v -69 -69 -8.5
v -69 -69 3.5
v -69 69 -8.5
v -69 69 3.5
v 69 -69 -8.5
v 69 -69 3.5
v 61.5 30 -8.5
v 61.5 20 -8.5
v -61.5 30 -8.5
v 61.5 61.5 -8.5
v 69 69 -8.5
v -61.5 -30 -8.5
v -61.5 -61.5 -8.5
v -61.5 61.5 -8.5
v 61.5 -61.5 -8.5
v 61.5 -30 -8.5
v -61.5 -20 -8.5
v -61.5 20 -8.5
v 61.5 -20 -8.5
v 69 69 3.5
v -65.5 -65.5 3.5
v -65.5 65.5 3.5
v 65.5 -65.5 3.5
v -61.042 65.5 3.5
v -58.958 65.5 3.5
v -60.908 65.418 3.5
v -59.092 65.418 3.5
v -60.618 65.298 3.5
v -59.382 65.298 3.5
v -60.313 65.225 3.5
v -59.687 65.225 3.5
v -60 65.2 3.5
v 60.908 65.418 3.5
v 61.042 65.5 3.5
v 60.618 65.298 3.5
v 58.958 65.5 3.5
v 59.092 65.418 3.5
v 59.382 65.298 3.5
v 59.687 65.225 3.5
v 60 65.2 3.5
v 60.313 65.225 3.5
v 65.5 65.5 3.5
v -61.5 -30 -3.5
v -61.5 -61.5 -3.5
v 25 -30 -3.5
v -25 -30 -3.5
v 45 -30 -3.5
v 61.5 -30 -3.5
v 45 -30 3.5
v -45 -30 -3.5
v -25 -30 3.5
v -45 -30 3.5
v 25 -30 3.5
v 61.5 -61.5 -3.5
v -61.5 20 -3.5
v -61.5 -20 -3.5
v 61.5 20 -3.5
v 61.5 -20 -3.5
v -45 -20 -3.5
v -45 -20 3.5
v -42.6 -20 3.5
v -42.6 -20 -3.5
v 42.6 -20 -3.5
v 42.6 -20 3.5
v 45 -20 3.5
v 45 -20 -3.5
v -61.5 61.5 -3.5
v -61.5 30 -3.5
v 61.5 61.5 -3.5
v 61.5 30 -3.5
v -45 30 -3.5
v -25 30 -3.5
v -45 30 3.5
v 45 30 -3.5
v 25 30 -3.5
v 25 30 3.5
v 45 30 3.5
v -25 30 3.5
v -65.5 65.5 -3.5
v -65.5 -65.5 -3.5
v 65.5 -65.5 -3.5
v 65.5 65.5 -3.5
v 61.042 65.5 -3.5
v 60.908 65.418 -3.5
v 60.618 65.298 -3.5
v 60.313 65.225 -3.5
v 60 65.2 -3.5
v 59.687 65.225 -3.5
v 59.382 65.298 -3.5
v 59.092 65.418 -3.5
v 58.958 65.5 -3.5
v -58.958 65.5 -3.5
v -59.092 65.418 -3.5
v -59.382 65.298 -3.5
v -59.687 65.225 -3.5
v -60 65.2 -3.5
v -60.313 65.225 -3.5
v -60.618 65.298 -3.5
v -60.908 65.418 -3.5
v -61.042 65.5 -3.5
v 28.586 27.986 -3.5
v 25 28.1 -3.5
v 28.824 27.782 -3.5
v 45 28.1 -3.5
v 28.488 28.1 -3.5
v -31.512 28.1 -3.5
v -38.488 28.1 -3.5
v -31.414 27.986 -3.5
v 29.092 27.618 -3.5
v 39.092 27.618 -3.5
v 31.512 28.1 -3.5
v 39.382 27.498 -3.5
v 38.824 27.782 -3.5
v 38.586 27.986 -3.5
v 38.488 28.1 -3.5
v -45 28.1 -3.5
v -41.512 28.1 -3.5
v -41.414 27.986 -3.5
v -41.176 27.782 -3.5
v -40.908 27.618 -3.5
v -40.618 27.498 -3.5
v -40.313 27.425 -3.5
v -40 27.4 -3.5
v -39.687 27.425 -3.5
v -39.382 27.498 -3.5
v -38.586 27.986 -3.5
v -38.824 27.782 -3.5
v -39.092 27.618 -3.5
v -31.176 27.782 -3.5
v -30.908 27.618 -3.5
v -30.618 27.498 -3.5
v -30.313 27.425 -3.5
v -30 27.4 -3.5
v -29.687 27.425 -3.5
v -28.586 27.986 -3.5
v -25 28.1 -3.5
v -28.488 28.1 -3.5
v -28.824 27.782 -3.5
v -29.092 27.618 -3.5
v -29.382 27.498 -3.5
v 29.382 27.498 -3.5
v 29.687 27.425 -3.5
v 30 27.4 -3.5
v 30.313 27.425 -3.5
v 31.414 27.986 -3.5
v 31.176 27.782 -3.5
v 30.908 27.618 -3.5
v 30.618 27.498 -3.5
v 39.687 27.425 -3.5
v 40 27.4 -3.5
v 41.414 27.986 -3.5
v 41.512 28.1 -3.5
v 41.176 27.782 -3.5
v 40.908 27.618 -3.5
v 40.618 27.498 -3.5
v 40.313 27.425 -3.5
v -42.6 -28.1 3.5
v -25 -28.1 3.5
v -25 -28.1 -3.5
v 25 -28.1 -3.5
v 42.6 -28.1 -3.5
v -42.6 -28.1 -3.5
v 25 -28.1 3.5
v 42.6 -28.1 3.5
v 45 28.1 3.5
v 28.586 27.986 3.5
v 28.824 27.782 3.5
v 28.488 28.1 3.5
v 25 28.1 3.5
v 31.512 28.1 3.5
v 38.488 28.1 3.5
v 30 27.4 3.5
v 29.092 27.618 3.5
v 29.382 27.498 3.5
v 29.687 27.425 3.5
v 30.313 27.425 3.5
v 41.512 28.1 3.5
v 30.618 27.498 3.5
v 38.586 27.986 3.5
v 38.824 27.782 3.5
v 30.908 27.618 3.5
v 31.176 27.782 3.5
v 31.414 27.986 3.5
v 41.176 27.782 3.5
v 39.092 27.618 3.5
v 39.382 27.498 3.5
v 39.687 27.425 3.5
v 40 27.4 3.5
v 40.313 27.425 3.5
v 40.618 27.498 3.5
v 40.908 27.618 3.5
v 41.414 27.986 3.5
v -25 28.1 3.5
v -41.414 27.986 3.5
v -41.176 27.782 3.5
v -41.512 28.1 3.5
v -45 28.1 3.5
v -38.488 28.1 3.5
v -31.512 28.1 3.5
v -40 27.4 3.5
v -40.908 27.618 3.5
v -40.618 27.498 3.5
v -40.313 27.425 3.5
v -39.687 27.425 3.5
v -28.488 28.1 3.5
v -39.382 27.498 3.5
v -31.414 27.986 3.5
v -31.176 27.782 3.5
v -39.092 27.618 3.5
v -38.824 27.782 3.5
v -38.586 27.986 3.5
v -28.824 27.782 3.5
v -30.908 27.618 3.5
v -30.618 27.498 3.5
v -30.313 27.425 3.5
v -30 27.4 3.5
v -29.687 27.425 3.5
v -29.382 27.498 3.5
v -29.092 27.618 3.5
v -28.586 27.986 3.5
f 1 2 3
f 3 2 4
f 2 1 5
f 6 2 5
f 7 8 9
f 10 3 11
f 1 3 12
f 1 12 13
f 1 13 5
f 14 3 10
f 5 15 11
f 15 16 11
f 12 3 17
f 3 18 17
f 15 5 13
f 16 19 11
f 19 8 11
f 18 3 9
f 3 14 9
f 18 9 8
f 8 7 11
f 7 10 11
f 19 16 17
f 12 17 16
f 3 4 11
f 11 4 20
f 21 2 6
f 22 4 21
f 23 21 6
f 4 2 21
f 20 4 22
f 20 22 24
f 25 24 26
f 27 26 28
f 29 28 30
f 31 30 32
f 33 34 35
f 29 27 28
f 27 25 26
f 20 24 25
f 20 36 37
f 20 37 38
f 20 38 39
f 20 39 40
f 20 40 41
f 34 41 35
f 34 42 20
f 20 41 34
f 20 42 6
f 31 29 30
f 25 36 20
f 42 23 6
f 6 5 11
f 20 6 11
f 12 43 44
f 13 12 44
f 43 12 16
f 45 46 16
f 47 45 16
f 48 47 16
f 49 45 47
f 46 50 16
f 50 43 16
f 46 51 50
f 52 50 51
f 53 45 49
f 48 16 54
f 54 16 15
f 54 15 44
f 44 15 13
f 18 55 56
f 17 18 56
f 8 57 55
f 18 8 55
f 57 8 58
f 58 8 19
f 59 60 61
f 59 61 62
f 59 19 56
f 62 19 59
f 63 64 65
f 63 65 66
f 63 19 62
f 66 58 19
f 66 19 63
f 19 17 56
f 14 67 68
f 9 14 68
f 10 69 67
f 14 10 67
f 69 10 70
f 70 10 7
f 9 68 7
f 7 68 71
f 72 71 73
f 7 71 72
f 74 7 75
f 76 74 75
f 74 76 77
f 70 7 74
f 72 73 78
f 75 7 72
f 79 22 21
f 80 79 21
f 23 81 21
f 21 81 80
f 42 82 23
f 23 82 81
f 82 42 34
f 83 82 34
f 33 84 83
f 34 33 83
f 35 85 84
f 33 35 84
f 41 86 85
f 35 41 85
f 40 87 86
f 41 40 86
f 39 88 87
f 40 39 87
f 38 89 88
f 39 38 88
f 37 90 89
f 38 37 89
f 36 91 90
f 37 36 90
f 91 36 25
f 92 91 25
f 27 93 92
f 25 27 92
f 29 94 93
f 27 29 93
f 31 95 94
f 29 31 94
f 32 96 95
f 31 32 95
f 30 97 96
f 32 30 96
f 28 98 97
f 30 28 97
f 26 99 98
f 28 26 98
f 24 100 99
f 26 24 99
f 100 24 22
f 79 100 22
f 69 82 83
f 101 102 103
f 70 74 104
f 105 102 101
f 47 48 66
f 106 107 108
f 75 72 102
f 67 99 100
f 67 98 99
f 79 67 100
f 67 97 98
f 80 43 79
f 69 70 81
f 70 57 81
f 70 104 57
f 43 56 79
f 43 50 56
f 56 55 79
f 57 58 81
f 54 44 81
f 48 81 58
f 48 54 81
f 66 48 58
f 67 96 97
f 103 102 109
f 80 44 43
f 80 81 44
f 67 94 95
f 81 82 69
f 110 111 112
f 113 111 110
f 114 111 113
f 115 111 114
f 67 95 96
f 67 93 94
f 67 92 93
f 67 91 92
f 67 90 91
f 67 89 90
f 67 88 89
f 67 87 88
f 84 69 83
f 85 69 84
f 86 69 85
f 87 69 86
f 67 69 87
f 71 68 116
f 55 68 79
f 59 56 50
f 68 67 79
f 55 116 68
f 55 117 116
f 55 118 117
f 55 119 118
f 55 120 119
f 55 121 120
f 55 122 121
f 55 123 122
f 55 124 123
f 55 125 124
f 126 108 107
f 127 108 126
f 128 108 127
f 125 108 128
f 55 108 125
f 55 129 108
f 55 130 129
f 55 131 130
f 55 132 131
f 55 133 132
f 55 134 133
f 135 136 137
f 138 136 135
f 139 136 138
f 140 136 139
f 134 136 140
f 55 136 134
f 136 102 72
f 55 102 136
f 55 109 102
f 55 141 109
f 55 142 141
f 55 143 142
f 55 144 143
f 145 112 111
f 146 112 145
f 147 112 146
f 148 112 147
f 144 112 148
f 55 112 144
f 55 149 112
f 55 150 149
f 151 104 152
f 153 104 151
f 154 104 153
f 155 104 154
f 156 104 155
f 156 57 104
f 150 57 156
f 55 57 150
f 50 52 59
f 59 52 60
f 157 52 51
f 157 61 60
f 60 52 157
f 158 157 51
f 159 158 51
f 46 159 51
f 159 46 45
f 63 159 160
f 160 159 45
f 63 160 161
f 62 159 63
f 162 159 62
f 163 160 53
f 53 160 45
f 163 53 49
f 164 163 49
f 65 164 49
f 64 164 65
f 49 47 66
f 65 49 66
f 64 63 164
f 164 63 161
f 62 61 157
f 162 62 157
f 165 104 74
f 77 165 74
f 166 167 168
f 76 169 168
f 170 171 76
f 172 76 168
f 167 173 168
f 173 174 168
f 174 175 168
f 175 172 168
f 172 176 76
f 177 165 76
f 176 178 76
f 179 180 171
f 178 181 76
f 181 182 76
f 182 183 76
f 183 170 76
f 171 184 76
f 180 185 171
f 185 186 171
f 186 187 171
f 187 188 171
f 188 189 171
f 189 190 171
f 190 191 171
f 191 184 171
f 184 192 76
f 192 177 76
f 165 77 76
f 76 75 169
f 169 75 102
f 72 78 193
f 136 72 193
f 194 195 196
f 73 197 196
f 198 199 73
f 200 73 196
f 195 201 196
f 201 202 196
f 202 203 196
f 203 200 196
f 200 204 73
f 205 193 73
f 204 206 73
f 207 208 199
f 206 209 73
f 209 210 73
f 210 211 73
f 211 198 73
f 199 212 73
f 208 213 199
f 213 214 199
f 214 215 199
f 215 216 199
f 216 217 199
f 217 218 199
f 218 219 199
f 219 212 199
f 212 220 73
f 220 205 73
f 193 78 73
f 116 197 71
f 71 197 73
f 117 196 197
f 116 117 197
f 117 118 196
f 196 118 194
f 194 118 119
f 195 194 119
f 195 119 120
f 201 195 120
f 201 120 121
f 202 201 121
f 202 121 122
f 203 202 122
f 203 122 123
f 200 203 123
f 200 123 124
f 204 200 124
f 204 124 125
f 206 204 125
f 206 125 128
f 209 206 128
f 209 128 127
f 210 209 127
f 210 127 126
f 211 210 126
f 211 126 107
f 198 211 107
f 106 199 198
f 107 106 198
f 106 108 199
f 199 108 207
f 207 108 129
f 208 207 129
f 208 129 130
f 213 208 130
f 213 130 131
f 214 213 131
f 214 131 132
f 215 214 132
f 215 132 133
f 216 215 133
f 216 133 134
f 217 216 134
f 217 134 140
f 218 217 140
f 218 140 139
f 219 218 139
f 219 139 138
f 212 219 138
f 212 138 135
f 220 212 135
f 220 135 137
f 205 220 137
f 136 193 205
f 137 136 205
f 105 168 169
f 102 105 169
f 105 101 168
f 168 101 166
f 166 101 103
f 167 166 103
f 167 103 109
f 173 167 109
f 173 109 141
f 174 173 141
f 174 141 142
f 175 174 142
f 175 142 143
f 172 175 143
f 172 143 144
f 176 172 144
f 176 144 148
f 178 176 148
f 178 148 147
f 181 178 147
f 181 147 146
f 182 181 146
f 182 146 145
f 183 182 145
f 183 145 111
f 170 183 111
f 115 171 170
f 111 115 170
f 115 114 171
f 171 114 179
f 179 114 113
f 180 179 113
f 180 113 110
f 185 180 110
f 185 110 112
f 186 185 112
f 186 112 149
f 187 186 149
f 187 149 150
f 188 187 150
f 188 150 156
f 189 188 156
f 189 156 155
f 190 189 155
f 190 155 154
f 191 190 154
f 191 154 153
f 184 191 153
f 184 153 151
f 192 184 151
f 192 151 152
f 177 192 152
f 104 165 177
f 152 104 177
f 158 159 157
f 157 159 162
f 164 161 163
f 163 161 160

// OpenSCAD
$fn = 40;
difference(){
cube([138,138,7],center=true);
cube([131,131,10],center=true);
}
translate([0,0,-6])
difference(){
cube([138,138,5],center=true);
translate([0,0,0])
cube([123,123,10],center=true);
}
translate([0,0,-6])
difference(){
cube([138,60,5],center=true);
cube([132.2,40,10],center=true);
}

difference(){
cube([90,60,7],center=true);
cube([85.2,56.2,10],center=true);

translate([0,0,0])
cube([100,40,10],center=true);

translate([0,8.1,0])
cube([100,40,10],center=true);

translate([0,0,0])
cube([50,80,10],center=true);
}
translate([30,29.4,0])
difference(){
cylinder(r=2,h=7,center=true);
translate([0,4,0])
cube([10,10,10],center=true);
}

translate([-30,29.4,0])
difference(){
cylinder(r=2,h=7,center=true);
translate([0,4,0])
cube([10,10,10],center=true);
}

translate([-40,29.4,0])
difference(){
cylinder(r=2,h=7,center=true);
translate([0,4,0])
cube([10,10,10],center=true);
}

translate([40,29.4,0])
difference(){
cylinder(r=2,h=7,center=true);
translate([0,4,0])
cube([10,10,10],center=true);
}

translate([60,67.2,0])
difference(){
cylinder(r=2,h=7,center=true);
translate([0,4,0])
cube([10,10,10],center=true);
}

translate([-60,67.2,0])
difference(){
cylinder(r=2,h=7,center=true);
translate([0,4,0])
cube([10,10,10],center=true);
}
